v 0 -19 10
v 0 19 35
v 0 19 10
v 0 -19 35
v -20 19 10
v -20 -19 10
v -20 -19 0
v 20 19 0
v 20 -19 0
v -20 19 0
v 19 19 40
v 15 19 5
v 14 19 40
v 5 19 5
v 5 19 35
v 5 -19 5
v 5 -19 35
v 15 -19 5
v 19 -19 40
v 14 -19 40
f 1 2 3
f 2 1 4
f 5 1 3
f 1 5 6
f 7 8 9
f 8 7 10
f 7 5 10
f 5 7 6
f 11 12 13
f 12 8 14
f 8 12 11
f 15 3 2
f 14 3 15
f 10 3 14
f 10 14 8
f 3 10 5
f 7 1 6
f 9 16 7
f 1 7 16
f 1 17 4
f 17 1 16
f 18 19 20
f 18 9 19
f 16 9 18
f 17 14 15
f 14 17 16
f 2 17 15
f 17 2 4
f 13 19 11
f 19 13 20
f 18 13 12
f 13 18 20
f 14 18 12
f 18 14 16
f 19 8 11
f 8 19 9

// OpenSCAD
$fn = 40;

translate([-20, -19, 0])
cube([20, 38, 10]);

translate([0, -19, 0])
cube([5, 38, 35]);

translate([5, 19, 0])
rotate(90, [1, 0, 0])
linear_extrude(38, true)
polygon([[0,0], [15, 0], [14, 40], [9, 40], [10, 5], [0, 5]]);
